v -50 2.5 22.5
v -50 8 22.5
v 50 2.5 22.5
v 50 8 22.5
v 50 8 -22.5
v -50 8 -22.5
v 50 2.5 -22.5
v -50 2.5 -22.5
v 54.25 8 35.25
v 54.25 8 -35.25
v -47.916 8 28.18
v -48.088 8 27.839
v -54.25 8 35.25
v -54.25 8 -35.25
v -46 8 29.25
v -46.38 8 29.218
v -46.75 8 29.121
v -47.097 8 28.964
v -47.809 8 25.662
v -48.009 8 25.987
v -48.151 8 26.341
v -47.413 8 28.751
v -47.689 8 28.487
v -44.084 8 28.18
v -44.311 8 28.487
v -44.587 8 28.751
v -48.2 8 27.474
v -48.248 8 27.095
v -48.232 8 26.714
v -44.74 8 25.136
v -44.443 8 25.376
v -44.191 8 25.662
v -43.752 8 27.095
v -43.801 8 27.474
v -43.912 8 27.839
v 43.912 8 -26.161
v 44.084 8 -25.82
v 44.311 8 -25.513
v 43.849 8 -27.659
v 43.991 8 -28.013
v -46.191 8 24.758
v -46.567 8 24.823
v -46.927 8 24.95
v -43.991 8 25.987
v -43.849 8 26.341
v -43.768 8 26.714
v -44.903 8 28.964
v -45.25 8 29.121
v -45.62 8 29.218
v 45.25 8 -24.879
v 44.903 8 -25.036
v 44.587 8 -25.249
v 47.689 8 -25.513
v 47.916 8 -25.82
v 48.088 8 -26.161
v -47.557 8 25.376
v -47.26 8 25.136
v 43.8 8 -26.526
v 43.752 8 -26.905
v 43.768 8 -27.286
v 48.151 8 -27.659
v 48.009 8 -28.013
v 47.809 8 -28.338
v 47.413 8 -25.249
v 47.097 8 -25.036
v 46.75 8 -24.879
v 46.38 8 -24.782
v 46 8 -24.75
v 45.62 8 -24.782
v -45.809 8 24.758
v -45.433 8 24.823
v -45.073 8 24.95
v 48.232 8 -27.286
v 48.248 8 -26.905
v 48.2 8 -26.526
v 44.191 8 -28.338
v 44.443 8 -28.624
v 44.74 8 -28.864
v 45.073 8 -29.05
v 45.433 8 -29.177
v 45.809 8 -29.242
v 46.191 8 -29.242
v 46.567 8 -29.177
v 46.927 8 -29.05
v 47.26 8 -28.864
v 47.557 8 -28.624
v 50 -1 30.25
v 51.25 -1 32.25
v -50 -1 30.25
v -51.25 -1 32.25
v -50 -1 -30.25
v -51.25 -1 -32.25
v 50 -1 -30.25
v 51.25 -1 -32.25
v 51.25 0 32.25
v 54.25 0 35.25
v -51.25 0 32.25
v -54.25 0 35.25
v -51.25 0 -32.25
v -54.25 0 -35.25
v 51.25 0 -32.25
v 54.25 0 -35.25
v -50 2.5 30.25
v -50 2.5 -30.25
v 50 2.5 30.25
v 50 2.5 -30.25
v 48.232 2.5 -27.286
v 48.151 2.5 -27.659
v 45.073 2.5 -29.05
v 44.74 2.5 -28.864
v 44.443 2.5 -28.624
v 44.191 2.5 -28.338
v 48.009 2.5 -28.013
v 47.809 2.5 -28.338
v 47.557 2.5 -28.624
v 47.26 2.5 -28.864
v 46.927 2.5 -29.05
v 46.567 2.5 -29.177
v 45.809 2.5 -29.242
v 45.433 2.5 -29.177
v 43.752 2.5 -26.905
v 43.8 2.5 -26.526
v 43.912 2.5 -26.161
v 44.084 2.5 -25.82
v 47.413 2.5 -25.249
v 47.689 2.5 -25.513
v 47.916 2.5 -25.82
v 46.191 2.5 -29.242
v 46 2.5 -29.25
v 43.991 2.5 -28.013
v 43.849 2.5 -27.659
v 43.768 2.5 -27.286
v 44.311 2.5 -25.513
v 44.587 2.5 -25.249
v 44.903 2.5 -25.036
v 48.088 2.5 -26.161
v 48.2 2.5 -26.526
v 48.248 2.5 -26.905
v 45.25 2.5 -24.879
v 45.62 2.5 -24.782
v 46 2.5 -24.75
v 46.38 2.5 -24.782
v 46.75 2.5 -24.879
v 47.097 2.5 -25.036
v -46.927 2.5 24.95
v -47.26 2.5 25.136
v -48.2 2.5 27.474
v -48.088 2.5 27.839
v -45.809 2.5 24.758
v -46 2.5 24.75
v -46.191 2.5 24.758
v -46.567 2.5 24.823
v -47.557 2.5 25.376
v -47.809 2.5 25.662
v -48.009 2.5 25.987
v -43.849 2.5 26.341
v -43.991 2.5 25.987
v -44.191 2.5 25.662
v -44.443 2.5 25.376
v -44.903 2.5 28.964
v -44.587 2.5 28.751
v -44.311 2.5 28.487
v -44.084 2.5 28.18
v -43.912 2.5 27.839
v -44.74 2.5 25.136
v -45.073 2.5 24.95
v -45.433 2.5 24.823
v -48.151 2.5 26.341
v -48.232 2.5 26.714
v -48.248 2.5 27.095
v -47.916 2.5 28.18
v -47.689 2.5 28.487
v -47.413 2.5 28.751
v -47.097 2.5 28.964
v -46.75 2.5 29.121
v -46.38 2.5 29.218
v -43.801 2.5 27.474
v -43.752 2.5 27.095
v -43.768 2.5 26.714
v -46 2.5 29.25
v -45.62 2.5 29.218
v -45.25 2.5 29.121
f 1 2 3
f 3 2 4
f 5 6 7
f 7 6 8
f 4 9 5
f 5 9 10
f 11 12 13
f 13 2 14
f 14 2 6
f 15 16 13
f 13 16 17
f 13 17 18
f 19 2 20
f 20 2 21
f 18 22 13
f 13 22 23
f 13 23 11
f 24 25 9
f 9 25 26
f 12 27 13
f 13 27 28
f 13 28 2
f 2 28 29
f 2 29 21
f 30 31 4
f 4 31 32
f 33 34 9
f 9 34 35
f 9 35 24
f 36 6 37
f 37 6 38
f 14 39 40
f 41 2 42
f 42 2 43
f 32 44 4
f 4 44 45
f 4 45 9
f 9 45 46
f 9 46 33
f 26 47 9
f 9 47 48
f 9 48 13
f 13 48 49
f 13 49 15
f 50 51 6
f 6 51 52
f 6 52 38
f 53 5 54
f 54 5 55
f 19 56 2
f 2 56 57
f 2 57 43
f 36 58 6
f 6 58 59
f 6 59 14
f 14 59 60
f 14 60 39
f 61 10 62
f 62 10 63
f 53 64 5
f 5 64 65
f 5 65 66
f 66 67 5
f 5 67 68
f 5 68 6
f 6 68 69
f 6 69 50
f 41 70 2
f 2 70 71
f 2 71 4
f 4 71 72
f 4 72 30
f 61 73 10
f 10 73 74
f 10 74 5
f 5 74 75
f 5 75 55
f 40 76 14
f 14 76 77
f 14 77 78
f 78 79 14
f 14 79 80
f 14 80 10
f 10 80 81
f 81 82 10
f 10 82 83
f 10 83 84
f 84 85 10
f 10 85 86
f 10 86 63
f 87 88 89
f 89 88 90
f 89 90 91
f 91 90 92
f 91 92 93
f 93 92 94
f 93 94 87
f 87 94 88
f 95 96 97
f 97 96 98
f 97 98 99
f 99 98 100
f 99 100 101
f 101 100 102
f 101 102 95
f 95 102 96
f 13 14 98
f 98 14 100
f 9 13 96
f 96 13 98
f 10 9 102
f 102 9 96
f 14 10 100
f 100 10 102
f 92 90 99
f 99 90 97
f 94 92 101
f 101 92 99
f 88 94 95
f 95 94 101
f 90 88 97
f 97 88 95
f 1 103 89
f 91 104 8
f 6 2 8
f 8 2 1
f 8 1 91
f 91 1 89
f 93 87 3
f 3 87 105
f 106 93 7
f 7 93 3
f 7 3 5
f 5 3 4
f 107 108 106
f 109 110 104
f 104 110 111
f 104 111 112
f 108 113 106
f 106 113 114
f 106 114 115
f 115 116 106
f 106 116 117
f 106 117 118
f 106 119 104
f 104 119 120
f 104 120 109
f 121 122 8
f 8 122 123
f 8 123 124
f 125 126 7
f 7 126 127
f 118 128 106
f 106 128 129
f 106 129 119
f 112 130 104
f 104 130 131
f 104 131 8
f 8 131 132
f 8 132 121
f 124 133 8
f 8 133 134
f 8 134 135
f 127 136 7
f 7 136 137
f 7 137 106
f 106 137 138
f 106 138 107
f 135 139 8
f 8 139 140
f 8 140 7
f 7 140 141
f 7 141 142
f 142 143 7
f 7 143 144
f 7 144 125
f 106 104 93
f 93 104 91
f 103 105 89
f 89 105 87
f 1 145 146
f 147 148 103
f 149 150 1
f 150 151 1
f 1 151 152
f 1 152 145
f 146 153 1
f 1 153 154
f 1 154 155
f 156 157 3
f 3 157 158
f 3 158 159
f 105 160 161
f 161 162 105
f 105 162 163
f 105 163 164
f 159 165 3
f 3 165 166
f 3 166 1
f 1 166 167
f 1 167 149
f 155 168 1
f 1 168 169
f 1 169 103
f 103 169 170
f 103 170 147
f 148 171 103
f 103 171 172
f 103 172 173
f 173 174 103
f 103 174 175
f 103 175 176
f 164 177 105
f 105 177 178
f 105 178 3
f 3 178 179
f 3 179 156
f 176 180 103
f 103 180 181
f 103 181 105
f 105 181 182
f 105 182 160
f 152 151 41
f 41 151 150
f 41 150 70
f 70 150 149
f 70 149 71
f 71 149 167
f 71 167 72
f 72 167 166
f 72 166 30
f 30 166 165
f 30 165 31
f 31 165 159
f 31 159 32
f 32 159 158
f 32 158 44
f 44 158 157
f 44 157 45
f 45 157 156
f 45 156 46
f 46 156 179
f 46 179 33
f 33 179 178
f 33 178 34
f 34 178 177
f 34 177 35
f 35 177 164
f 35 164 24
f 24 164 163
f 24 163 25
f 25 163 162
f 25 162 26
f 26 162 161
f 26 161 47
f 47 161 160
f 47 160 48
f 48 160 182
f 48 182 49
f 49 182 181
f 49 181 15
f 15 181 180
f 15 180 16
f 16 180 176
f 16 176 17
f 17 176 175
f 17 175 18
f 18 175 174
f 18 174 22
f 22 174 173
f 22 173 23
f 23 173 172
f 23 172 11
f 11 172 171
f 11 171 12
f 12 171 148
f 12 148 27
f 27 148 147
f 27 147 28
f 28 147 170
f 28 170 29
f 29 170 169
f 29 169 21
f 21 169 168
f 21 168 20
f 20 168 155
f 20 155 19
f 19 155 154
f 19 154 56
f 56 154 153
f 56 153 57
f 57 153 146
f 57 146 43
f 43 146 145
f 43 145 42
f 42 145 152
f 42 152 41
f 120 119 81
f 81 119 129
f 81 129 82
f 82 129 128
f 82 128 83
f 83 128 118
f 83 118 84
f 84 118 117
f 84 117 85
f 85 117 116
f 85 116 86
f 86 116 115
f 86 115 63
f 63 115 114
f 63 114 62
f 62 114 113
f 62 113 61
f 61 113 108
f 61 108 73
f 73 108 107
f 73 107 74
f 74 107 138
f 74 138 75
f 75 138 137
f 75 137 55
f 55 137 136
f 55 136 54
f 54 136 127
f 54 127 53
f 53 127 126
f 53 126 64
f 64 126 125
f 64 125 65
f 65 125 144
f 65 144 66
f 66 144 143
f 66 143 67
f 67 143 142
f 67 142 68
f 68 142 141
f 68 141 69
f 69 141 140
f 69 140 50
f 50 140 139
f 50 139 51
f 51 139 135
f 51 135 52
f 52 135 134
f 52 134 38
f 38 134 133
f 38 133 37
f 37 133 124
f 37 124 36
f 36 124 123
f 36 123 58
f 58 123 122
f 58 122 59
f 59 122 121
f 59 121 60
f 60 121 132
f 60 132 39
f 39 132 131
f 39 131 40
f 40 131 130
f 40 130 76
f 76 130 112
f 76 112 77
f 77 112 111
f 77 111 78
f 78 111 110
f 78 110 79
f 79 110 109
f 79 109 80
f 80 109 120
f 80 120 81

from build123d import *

# Parameters (mm, degrees)
SKETCH1_W           = 108.5
SKETCH1_H           = 70.5
BOSS_EXTRUDE1_DEPTH = 8
SKETCH3_W           = 102.5
SKETCH3_H           = 64.5
BOSS_EXTRUDE2_DEPTH = 1
SKETCH2_W           = 100
SKETCH2_H           = 45
CUT_EXTRUDE2_DEPTH  = 66.319407529
SKETCH4_W           = 100
SKETCH4_H           = 60.5
CUT_EXTRUDE3_DEPTH  = 3.5
SKETCH8_R           = 2.25
CUT_EXTRUDE6_DEPTH  = 66.319407529


with BuildPart() as part:
    # Sketch1 → Boss-Extrude1 (new body)
    with BuildSketch(Plane(origin=(0, 0, 0), x_dir=(1, 0, 0), z_dir=(0, 1, 0))):
        Rectangle(SKETCH1_W, SKETCH1_H)
    extrude(amount=BOSS_EXTRUDE1_DEPTH)

    # Sketch3 → Boss-Extrude2 (add)
    with BuildSketch(Plane.XZ):
        Rectangle(SKETCH3_W, SKETCH3_H)
    extrude(amount=BOSS_EXTRUDE2_DEPTH)

    # Sketch2 → Cut-Extrude2 (cut, through all)
    with BuildSketch(Plane(origin=(0, 8, 0), x_dir=(1, 0, 0), z_dir=(0, 1, 0))):
        Rectangle(SKETCH2_W, SKETCH2_H)
    extrude(amount=-CUT_EXTRUDE2_DEPTH, mode=Mode.SUBTRACT)

    # Sketch4 → Cut-Extrude3 (cut)
    with BuildSketch(Plane.XZ.offset(1)):
        Rectangle(SKETCH4_W, SKETCH4_H)
    extrude(amount=-CUT_EXTRUDE3_DEPTH, mode=Mode.SUBTRACT)

    # Sketch8 → Cut-Extrude6 (cut, through all)
    with BuildSketch(Plane(origin=(0, 8, 0), x_dir=(1, 0, 0), z_dir=(0, 1, 0))):
        with Locations(Location((-46, -27, 0), (0, 0, 270))):
            Circle(SKETCH8_R)
        with Locations(Location((46, 27, 0), (0, 0, 270))):
            Circle(SKETCH8_R)
    extrude(amount=-CUT_EXTRUDE6_DEPTH, mode=Mode.SUBTRACT)


solid = part.part
